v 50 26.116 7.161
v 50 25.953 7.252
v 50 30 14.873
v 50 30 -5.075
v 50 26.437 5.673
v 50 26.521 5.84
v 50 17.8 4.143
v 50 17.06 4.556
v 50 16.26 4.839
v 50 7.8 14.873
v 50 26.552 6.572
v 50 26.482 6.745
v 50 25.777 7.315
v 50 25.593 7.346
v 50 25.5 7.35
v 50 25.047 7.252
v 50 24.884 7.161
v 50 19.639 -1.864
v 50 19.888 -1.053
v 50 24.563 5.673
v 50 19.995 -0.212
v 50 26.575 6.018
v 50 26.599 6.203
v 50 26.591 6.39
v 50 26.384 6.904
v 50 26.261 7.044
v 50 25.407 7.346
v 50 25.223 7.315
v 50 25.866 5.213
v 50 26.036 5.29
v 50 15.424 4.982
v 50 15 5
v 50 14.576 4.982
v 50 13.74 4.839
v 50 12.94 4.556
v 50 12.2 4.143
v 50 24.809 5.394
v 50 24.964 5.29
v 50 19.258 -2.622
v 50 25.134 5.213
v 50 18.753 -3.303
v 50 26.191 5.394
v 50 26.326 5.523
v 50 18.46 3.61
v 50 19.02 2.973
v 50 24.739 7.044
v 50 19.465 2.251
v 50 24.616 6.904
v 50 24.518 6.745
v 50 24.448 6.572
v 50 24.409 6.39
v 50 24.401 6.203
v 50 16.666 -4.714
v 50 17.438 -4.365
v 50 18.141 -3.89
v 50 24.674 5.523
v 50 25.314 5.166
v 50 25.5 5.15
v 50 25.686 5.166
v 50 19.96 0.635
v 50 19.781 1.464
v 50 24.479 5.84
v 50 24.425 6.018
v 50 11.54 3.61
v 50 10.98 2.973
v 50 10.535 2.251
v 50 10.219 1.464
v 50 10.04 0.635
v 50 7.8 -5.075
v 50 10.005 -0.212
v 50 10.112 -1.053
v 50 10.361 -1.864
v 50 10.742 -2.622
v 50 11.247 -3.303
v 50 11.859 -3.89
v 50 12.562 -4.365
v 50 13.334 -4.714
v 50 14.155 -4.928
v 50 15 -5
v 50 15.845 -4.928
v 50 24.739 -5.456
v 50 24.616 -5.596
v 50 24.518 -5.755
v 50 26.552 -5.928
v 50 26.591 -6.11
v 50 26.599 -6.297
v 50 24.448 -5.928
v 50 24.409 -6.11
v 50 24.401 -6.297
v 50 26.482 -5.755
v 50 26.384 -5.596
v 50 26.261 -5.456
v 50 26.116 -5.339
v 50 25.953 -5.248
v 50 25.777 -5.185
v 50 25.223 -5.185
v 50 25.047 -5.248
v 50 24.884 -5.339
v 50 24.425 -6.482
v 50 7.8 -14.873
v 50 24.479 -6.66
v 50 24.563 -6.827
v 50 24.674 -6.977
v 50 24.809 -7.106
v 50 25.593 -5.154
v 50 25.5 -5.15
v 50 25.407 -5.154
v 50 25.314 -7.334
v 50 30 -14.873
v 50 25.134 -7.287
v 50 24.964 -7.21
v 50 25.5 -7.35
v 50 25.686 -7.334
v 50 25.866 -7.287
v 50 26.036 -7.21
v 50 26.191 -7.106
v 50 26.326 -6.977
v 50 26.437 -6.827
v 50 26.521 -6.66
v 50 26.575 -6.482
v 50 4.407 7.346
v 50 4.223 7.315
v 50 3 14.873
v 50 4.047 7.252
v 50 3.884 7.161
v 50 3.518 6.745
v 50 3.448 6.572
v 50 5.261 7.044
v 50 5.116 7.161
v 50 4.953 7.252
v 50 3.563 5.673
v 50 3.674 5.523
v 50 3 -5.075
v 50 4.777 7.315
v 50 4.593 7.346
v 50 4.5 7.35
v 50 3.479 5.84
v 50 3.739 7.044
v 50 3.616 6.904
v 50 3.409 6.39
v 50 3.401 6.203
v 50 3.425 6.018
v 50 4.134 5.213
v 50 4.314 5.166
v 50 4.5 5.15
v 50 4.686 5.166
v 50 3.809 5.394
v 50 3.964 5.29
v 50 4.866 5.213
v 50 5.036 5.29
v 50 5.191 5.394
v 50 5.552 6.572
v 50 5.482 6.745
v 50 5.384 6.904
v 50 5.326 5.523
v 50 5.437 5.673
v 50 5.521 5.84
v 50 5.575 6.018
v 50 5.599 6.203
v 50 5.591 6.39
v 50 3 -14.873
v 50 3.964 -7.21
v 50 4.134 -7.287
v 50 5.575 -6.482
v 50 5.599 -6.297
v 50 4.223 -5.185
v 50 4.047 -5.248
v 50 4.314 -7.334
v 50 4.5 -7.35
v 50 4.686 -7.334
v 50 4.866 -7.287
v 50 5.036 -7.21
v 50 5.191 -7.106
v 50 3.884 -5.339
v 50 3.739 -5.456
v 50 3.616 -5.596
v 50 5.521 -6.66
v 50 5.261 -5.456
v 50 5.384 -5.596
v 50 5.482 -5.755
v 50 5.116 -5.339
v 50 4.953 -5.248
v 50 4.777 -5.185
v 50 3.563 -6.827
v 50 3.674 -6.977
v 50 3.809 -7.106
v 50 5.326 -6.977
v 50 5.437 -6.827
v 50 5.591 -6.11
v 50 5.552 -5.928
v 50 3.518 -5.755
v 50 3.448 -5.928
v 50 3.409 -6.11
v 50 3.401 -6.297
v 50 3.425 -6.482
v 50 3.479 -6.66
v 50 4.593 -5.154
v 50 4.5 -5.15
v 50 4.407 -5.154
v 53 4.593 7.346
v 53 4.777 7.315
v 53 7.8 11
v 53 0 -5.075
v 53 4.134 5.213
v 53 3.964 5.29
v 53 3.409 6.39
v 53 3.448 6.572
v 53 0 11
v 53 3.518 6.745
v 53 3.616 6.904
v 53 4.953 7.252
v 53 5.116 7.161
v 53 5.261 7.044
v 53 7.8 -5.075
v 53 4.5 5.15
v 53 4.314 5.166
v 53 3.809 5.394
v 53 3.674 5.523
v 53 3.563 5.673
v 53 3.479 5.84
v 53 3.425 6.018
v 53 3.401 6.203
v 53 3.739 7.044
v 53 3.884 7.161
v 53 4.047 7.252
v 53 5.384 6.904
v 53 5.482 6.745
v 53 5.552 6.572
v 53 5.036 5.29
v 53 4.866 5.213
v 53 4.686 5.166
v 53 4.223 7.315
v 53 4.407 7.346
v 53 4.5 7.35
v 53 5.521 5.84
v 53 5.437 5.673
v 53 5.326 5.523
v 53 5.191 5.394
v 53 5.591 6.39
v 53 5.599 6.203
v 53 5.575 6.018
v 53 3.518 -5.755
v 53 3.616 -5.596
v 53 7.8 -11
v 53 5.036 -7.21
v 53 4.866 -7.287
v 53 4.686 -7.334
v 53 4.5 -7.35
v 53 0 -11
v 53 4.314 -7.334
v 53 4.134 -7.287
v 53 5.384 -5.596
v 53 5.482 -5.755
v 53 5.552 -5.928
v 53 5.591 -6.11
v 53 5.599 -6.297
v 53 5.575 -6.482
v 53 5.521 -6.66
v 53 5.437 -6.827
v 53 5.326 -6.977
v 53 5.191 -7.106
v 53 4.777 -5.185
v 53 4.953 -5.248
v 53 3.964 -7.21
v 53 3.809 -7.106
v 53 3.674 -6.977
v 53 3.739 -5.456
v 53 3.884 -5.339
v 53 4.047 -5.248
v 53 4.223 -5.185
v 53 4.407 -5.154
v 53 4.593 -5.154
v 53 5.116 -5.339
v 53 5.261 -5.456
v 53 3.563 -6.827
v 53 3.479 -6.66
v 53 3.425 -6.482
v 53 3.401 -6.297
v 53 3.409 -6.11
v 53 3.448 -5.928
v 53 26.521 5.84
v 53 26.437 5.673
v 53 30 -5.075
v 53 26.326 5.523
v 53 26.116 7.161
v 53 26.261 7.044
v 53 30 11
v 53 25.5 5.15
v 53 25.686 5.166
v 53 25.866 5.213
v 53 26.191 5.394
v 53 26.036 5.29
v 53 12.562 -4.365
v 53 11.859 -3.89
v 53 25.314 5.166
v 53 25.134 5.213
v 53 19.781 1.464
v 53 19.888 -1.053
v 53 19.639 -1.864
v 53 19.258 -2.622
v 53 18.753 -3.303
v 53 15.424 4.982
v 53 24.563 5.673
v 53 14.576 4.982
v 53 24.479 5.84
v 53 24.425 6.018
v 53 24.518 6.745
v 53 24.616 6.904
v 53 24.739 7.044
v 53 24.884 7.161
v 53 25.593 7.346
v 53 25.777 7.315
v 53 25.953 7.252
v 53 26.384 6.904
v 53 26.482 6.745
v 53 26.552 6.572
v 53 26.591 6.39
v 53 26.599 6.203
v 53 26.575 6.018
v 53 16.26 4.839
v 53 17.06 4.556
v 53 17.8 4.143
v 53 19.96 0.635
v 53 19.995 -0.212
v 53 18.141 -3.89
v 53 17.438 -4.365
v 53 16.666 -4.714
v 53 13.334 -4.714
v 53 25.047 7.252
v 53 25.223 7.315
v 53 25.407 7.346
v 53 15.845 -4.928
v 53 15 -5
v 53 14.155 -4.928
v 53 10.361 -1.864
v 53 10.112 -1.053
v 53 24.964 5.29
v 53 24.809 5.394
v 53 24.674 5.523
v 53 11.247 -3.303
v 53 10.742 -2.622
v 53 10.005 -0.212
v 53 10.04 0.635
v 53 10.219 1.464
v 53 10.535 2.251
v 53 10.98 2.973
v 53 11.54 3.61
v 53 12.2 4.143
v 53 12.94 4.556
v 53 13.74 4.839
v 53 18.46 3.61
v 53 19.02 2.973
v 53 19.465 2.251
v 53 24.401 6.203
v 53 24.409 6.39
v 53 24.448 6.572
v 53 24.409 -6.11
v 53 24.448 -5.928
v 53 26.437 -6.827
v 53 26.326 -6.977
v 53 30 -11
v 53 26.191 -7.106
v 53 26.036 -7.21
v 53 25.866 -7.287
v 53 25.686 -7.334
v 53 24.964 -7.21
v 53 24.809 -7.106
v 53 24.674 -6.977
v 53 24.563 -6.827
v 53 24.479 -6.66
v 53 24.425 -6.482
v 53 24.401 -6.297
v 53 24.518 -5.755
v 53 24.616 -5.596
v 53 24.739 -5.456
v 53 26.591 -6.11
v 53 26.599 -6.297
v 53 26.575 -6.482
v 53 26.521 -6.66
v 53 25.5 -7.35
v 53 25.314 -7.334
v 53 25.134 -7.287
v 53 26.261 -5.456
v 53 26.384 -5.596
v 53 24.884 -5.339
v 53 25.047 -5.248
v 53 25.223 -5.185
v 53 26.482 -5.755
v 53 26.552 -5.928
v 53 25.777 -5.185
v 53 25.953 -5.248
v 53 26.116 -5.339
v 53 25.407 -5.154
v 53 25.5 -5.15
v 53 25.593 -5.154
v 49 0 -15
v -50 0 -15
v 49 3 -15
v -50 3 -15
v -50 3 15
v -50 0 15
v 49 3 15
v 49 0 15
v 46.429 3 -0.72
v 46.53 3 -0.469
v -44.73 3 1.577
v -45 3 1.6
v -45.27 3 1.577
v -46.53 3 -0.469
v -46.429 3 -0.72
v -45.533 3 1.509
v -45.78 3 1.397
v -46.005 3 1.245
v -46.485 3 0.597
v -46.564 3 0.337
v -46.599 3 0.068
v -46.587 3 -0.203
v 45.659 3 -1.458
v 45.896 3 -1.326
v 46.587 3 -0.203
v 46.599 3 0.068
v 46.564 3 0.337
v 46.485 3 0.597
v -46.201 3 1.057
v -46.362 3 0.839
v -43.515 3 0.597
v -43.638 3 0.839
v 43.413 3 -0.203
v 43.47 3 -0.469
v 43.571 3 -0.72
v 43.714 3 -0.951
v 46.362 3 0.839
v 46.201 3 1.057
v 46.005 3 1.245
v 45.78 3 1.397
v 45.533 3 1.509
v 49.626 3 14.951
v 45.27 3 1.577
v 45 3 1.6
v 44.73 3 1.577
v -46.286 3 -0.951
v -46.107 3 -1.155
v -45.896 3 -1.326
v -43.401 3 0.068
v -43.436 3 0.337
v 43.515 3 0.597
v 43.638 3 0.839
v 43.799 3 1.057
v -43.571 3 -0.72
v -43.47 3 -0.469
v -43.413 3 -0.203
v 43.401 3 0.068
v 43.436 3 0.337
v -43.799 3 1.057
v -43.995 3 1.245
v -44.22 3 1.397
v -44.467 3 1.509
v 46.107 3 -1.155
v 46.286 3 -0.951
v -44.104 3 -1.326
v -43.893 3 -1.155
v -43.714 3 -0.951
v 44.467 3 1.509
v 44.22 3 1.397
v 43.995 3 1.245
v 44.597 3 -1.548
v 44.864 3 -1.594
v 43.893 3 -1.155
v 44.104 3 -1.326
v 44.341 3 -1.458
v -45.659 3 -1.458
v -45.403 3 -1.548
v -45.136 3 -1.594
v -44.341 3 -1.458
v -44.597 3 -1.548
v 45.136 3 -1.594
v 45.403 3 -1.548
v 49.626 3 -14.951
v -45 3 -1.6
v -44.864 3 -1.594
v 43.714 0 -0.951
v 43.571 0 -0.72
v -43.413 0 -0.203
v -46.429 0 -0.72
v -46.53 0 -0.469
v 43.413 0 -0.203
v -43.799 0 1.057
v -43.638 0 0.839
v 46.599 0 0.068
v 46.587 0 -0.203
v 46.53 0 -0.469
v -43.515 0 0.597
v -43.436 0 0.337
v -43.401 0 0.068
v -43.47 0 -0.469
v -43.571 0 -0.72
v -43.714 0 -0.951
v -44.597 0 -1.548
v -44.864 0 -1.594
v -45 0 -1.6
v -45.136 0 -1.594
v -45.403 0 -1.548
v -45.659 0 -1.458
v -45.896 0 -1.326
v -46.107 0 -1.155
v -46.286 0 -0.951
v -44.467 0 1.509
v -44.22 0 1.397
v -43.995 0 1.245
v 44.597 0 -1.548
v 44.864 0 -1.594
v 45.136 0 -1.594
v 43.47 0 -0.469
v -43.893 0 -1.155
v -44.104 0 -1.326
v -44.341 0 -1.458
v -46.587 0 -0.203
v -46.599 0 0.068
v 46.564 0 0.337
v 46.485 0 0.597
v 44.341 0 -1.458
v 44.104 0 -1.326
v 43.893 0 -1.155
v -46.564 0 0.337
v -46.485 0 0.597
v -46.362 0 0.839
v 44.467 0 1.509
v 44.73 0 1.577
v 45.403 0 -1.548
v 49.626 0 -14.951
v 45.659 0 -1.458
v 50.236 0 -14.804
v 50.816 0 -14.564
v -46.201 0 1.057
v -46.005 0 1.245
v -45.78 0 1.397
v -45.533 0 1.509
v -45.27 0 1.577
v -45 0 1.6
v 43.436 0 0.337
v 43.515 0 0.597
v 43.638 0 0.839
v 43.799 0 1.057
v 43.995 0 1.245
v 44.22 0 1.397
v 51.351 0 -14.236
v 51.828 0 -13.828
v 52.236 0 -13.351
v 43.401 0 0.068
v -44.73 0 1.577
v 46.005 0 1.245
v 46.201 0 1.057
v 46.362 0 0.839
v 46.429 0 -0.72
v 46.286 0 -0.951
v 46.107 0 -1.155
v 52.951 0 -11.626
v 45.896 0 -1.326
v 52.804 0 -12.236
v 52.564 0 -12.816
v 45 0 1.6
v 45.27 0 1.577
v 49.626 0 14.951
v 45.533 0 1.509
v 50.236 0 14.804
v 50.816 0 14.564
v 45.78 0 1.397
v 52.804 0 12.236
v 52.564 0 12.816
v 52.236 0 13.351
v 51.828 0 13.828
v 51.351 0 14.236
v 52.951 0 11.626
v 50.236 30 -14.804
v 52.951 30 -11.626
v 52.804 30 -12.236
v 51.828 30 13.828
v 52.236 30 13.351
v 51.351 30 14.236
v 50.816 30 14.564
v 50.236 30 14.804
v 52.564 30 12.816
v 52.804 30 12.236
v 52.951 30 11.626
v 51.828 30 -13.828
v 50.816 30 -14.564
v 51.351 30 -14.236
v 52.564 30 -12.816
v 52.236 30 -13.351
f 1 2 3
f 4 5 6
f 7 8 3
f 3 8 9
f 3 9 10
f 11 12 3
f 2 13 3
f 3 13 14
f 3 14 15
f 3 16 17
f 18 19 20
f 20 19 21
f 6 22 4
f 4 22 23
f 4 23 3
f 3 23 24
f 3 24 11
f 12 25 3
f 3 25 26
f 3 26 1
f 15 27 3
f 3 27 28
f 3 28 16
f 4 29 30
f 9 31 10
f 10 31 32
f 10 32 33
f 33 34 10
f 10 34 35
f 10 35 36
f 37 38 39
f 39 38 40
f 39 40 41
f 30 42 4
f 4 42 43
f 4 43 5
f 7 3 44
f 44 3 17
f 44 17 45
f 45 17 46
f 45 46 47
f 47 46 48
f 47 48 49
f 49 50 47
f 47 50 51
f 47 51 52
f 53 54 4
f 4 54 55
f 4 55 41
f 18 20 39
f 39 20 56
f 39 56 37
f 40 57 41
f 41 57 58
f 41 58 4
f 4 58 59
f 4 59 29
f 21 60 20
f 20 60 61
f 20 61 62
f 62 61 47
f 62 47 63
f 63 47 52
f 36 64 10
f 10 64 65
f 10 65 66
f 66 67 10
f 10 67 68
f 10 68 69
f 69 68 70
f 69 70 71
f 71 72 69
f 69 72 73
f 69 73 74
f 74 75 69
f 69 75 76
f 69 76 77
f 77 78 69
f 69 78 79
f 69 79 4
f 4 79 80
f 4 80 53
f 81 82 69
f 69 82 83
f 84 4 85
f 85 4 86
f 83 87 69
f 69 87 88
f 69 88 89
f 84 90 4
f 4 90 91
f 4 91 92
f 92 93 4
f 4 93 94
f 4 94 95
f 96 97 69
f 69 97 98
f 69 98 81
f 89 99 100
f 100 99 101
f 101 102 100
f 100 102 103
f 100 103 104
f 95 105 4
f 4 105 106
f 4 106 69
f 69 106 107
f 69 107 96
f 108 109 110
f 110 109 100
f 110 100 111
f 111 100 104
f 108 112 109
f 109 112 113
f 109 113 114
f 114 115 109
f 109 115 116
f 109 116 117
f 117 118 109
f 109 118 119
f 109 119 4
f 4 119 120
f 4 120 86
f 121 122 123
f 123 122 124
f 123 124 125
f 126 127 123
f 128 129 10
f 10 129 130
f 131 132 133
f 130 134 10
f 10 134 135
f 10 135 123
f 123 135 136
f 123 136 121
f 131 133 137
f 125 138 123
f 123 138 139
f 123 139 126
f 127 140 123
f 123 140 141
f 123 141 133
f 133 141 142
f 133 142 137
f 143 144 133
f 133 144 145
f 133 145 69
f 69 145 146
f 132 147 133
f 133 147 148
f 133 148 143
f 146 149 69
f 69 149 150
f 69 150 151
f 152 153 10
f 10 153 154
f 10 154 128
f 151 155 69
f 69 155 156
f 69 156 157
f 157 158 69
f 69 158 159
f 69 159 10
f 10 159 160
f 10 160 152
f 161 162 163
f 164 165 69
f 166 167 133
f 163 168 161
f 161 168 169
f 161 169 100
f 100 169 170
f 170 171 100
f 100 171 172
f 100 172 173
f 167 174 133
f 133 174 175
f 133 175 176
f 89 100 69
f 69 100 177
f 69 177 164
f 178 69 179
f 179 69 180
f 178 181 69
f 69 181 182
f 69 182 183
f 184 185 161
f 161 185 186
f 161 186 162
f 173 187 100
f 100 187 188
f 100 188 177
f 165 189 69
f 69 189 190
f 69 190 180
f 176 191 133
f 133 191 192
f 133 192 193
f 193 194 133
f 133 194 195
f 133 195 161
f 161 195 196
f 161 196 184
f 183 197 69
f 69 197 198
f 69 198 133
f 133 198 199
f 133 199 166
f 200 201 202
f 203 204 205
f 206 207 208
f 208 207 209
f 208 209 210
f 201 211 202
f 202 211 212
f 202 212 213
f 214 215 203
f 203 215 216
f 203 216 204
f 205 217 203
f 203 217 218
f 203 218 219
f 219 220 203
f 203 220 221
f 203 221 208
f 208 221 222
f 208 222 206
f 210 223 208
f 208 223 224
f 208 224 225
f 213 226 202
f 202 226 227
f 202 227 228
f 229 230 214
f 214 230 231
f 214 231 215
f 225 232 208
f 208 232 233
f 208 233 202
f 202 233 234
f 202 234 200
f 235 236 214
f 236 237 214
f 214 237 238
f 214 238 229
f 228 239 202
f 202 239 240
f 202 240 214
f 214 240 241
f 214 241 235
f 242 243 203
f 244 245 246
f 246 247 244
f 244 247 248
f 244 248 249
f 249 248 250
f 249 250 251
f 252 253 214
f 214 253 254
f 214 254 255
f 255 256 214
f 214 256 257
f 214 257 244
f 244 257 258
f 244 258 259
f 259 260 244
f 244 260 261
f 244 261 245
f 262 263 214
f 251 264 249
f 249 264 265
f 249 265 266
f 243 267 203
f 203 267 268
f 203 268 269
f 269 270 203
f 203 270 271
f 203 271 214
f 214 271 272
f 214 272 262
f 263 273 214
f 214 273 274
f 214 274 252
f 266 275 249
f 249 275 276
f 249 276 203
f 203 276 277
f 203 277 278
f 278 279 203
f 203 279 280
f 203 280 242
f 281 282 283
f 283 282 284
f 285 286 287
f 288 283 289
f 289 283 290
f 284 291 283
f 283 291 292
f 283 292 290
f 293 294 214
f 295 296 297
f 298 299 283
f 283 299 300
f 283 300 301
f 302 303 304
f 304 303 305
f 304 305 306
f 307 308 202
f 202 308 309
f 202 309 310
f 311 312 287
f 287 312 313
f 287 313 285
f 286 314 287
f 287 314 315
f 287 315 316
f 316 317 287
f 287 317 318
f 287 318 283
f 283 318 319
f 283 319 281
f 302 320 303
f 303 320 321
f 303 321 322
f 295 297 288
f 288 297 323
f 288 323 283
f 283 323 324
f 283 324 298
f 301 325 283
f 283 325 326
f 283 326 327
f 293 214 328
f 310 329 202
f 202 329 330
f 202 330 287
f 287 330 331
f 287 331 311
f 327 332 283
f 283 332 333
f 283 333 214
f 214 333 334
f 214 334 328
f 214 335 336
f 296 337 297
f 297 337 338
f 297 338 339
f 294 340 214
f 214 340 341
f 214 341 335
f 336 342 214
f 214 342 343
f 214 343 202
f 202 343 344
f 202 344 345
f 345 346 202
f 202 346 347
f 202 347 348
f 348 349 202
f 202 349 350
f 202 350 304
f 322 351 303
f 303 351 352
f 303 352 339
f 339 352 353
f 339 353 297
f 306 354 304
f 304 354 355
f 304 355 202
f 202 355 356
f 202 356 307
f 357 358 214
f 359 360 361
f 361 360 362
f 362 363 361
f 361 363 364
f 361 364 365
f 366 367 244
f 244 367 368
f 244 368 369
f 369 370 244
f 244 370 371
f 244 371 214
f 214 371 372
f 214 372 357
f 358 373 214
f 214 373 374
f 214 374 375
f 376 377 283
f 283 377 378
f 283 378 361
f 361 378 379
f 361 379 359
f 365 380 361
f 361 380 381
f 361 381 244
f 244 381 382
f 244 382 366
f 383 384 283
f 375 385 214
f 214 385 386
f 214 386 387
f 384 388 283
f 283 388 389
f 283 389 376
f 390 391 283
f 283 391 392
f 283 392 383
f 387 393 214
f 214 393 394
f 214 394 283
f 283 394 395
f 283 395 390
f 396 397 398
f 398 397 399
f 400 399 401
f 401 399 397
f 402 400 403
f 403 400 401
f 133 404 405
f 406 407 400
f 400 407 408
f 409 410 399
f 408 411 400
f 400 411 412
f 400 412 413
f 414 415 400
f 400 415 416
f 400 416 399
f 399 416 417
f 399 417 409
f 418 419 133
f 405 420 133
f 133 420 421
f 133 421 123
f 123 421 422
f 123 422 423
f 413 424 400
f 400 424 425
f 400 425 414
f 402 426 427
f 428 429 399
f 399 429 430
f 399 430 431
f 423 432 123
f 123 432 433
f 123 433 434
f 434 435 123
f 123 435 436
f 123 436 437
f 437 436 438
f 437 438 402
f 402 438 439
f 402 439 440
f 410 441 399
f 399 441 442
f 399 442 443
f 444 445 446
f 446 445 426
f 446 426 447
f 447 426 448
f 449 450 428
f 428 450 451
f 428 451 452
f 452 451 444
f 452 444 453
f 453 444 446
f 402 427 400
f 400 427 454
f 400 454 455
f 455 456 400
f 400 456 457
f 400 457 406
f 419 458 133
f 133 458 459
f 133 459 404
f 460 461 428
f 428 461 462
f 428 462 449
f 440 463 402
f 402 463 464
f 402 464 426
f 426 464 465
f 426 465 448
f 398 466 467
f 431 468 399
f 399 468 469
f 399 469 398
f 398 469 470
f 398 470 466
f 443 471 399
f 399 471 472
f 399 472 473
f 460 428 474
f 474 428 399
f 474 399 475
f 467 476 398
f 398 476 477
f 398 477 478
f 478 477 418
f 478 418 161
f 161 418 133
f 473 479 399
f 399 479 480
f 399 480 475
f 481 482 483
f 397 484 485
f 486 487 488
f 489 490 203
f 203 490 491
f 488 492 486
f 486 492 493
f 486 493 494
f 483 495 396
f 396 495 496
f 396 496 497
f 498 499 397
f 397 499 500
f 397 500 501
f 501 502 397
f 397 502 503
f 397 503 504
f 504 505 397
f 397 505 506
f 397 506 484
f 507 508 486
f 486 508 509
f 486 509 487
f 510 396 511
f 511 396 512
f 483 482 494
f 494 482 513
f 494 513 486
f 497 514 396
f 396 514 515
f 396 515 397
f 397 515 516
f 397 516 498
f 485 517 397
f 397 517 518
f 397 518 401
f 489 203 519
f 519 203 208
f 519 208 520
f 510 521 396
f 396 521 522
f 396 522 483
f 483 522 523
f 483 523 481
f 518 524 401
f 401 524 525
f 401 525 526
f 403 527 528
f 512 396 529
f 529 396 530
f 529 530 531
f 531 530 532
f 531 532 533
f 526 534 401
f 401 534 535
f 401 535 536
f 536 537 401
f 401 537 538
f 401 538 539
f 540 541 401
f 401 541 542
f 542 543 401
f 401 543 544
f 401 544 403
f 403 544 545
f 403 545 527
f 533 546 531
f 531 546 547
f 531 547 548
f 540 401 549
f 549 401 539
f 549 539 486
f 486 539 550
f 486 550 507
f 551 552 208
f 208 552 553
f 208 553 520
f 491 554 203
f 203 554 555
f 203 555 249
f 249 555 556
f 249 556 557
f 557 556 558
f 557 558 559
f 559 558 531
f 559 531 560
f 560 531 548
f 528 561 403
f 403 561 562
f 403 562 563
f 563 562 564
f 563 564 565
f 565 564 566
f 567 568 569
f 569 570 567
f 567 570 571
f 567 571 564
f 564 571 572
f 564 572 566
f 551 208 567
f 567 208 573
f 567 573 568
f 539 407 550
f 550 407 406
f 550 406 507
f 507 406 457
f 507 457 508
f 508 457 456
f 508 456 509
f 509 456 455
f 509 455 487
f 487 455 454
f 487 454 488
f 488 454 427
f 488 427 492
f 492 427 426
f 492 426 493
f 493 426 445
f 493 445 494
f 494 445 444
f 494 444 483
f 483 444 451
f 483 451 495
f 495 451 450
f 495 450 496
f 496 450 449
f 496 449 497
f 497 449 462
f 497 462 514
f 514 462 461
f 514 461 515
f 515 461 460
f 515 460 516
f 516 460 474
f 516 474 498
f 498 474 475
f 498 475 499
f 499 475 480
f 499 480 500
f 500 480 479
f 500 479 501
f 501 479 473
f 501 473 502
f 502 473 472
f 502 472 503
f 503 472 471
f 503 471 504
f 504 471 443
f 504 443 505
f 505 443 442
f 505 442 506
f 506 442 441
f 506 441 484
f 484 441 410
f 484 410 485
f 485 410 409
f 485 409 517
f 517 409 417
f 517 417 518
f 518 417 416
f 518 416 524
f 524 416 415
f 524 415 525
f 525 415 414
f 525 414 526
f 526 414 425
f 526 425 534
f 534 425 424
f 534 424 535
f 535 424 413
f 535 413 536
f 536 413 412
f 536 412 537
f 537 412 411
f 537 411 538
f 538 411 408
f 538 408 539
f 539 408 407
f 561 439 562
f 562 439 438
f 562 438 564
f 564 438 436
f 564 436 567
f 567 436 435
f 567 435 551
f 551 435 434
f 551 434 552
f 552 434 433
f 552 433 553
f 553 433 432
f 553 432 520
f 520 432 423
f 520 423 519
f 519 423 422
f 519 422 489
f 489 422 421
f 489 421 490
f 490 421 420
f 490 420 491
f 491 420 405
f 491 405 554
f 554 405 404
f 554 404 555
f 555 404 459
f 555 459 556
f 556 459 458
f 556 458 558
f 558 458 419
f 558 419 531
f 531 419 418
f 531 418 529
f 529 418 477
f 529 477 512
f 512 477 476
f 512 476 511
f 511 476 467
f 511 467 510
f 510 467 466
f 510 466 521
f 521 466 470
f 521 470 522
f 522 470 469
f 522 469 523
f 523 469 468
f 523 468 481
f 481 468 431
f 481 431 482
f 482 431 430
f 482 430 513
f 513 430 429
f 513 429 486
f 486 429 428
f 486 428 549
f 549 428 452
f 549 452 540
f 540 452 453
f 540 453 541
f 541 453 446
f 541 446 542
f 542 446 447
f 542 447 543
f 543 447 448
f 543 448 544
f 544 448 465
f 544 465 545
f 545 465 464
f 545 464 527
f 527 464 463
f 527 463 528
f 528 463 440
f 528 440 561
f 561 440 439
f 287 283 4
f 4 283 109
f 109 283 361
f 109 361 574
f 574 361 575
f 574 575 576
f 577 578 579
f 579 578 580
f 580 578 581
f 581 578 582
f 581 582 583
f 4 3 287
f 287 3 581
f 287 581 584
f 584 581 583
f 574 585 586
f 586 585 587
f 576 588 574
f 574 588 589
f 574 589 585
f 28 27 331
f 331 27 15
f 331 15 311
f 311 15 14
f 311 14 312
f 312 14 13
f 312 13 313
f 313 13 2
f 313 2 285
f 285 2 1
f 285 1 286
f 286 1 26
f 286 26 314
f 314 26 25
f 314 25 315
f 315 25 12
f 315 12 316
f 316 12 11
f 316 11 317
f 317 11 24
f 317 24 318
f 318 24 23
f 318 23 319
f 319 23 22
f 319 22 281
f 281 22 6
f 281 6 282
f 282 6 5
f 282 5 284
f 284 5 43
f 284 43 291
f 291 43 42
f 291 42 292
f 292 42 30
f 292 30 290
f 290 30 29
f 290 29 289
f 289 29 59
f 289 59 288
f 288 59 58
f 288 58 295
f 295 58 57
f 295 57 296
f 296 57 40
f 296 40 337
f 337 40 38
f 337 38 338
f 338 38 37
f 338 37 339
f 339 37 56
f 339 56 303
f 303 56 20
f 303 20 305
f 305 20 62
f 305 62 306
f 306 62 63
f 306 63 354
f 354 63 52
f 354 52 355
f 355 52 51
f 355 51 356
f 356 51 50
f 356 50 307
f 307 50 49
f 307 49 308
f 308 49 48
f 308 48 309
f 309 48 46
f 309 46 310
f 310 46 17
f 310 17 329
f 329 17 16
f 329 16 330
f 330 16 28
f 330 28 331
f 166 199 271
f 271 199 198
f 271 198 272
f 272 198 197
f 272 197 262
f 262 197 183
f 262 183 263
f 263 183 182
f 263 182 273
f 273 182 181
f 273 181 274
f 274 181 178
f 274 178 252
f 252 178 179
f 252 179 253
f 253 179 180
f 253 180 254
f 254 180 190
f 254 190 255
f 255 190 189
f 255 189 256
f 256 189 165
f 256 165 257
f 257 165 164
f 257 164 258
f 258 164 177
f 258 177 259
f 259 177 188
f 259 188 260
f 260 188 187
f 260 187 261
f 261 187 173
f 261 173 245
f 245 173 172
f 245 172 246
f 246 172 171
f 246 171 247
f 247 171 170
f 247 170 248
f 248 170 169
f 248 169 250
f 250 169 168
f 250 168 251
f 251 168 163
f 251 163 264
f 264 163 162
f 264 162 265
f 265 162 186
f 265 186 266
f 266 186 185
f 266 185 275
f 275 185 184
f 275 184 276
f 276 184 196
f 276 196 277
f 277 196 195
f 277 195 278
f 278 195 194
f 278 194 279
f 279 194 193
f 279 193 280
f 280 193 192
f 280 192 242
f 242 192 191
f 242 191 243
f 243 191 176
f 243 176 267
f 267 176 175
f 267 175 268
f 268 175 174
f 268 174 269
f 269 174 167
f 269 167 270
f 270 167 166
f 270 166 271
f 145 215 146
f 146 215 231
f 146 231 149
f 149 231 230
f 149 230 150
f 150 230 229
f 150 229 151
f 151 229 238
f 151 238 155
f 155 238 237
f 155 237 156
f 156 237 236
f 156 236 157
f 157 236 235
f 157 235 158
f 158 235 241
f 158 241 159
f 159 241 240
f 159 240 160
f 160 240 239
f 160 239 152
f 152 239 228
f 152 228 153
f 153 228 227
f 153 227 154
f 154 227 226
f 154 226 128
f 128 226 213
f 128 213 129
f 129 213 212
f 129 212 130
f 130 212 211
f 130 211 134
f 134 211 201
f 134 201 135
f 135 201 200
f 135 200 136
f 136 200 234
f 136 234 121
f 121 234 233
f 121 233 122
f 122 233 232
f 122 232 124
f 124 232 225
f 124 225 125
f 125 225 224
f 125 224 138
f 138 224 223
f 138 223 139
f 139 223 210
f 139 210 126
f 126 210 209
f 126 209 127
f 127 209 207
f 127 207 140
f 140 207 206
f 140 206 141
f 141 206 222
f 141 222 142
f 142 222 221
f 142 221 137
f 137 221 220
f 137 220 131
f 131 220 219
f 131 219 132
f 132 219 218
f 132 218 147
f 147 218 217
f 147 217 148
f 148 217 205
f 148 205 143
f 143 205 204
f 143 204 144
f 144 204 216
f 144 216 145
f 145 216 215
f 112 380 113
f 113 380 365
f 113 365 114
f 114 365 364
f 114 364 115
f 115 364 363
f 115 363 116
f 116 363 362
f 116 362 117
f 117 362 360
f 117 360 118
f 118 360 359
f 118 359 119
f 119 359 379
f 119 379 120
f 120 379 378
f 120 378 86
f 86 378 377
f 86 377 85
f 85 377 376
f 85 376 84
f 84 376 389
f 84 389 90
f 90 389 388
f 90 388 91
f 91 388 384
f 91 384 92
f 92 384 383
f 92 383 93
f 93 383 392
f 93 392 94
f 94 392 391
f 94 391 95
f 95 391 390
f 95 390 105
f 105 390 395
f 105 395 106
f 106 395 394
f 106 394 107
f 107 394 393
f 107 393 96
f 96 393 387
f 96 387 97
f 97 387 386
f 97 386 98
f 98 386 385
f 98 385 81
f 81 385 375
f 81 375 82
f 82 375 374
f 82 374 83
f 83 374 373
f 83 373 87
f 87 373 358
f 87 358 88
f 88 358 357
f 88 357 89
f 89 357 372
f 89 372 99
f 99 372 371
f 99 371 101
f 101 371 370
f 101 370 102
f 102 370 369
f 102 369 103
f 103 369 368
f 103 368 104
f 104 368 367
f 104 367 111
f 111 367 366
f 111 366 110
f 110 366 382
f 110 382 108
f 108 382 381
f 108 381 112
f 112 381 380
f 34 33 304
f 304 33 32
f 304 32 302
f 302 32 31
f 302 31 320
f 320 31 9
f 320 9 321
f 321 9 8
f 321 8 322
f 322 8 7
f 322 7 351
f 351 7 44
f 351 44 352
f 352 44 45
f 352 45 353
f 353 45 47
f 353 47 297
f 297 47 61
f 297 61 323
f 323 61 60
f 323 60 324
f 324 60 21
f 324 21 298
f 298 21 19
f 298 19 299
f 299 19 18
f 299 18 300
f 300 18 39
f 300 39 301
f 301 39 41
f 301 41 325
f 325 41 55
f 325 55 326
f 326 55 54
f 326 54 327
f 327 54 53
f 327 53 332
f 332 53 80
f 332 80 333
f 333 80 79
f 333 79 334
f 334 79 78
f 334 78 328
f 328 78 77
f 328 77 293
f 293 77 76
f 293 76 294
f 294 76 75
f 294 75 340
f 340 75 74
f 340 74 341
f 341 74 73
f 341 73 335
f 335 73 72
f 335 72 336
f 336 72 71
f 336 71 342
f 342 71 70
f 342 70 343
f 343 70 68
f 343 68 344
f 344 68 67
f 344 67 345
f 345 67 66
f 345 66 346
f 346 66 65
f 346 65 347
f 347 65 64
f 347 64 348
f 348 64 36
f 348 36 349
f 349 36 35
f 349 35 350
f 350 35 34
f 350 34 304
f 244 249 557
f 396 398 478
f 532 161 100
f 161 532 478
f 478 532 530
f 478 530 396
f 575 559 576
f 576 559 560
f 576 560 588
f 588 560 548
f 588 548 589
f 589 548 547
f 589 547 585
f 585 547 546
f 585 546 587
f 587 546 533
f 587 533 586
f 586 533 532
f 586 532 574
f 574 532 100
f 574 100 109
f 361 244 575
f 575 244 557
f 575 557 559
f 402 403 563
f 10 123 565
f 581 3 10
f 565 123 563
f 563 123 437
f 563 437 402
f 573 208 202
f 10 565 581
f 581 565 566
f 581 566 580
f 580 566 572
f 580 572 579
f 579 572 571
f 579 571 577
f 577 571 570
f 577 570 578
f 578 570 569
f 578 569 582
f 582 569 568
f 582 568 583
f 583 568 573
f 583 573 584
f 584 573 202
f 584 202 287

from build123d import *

# Parameters (mm, degrees)
SKETCH1_W           = 100
SKETCH1_H           = 30
BOSS_EXTRUDE1_DEPTH = 3
SKETCH2_R           = 1.6
CUT_EXTRUDE1_DEPTH  = 53.28766585
SKETCH5_W           = 30
SKETCH5_H           = 30
BOSS_EXTRUDE2_DEPTH = 3
SKETCH6_R           = 1.1
CUT_EXTRUDE2_DEPTH  = 109.323589305
SKETCH7_R           = 5
CUT_EXTRUDE3_DEPTH  = 109.323589305
FILLET1_R           = 4


with BuildPart() as part:
    # Sketch1 → Boss-Extrude1 (new body)
    with BuildSketch(Plane(origin=(0, 0, 0), x_dir=(1, 0, 0), z_dir=(0, 1, 0))):
        Rectangle(SKETCH1_W, SKETCH1_H)
    extrude(amount=BOSS_EXTRUDE1_DEPTH)

    # Sketch2 → Cut-Extrude1 (cut, through all)
    with BuildSketch(Plane(origin=(0, 3, 0), x_dir=(1, 0, 0), z_dir=(0, 1, 0))):
        with Locations(Location((45, 0, 0), (0, 0, 270))):
            Circle(SKETCH2_R)
        with Locations(Location((-45, 0, 0), (0, 0, 90))):
            Circle(SKETCH2_R)
    extrude(amount=-CUT_EXTRUDE1_DEPTH, mode=Mode.SUBTRACT)

    # Sketch5 → Boss-Extrude2 (add)
    with BuildSketch(Plane(origin=(50, 0, 0), x_dir=(0, 0, -1), z_dir=(1, 0, 0))):
        with Locations((0, 15)):
            Rectangle(SKETCH5_W, SKETCH5_H)
    extrude(amount=BOSS_EXTRUDE2_DEPTH)

    # Sketch6 → Cut-Extrude2 (cut, through all)
    with BuildSketch(Plane(origin=(53, 0, 0), x_dir=(0, 0, -1), z_dir=(1, 0, 0))):
        with Locations((-6.25, 25.5)):
            Circle(SKETCH6_R)
        with Locations(Location((6.25, 25.5, 0), (0, 0, 180))):
            Circle(SKETCH6_R)
        with Locations((6.25, 4.5)):
            Circle(SKETCH6_R)
        with Locations(Location((-6.25, 4.5, 0), (0, 0, 180))):
            Circle(SKETCH6_R)
    extrude(amount=-CUT_EXTRUDE2_DEPTH, mode=Mode.SUBTRACT)

    # Sketch7 → Cut-Extrude3 (cut, through all)
    with BuildSketch(Plane(origin=(53, 0, 0), x_dir=(0, 0, -1), z_dir=(1, 0, 0))):
        with Locations((0, 15)):
            Circle(SKETCH7_R)
    extrude(amount=-CUT_EXTRUDE3_DEPTH, mode=Mode.SUBTRACT)

    # Fillet1
    fillet1_edges = [part.edges().sort_by_distance(p)[0] for p in [
        (53, 15, -15),
        (53, 15, 15),
    ]]
    fillet(fillet1_edges, radius=FILLET1_R)


solid = part.part
